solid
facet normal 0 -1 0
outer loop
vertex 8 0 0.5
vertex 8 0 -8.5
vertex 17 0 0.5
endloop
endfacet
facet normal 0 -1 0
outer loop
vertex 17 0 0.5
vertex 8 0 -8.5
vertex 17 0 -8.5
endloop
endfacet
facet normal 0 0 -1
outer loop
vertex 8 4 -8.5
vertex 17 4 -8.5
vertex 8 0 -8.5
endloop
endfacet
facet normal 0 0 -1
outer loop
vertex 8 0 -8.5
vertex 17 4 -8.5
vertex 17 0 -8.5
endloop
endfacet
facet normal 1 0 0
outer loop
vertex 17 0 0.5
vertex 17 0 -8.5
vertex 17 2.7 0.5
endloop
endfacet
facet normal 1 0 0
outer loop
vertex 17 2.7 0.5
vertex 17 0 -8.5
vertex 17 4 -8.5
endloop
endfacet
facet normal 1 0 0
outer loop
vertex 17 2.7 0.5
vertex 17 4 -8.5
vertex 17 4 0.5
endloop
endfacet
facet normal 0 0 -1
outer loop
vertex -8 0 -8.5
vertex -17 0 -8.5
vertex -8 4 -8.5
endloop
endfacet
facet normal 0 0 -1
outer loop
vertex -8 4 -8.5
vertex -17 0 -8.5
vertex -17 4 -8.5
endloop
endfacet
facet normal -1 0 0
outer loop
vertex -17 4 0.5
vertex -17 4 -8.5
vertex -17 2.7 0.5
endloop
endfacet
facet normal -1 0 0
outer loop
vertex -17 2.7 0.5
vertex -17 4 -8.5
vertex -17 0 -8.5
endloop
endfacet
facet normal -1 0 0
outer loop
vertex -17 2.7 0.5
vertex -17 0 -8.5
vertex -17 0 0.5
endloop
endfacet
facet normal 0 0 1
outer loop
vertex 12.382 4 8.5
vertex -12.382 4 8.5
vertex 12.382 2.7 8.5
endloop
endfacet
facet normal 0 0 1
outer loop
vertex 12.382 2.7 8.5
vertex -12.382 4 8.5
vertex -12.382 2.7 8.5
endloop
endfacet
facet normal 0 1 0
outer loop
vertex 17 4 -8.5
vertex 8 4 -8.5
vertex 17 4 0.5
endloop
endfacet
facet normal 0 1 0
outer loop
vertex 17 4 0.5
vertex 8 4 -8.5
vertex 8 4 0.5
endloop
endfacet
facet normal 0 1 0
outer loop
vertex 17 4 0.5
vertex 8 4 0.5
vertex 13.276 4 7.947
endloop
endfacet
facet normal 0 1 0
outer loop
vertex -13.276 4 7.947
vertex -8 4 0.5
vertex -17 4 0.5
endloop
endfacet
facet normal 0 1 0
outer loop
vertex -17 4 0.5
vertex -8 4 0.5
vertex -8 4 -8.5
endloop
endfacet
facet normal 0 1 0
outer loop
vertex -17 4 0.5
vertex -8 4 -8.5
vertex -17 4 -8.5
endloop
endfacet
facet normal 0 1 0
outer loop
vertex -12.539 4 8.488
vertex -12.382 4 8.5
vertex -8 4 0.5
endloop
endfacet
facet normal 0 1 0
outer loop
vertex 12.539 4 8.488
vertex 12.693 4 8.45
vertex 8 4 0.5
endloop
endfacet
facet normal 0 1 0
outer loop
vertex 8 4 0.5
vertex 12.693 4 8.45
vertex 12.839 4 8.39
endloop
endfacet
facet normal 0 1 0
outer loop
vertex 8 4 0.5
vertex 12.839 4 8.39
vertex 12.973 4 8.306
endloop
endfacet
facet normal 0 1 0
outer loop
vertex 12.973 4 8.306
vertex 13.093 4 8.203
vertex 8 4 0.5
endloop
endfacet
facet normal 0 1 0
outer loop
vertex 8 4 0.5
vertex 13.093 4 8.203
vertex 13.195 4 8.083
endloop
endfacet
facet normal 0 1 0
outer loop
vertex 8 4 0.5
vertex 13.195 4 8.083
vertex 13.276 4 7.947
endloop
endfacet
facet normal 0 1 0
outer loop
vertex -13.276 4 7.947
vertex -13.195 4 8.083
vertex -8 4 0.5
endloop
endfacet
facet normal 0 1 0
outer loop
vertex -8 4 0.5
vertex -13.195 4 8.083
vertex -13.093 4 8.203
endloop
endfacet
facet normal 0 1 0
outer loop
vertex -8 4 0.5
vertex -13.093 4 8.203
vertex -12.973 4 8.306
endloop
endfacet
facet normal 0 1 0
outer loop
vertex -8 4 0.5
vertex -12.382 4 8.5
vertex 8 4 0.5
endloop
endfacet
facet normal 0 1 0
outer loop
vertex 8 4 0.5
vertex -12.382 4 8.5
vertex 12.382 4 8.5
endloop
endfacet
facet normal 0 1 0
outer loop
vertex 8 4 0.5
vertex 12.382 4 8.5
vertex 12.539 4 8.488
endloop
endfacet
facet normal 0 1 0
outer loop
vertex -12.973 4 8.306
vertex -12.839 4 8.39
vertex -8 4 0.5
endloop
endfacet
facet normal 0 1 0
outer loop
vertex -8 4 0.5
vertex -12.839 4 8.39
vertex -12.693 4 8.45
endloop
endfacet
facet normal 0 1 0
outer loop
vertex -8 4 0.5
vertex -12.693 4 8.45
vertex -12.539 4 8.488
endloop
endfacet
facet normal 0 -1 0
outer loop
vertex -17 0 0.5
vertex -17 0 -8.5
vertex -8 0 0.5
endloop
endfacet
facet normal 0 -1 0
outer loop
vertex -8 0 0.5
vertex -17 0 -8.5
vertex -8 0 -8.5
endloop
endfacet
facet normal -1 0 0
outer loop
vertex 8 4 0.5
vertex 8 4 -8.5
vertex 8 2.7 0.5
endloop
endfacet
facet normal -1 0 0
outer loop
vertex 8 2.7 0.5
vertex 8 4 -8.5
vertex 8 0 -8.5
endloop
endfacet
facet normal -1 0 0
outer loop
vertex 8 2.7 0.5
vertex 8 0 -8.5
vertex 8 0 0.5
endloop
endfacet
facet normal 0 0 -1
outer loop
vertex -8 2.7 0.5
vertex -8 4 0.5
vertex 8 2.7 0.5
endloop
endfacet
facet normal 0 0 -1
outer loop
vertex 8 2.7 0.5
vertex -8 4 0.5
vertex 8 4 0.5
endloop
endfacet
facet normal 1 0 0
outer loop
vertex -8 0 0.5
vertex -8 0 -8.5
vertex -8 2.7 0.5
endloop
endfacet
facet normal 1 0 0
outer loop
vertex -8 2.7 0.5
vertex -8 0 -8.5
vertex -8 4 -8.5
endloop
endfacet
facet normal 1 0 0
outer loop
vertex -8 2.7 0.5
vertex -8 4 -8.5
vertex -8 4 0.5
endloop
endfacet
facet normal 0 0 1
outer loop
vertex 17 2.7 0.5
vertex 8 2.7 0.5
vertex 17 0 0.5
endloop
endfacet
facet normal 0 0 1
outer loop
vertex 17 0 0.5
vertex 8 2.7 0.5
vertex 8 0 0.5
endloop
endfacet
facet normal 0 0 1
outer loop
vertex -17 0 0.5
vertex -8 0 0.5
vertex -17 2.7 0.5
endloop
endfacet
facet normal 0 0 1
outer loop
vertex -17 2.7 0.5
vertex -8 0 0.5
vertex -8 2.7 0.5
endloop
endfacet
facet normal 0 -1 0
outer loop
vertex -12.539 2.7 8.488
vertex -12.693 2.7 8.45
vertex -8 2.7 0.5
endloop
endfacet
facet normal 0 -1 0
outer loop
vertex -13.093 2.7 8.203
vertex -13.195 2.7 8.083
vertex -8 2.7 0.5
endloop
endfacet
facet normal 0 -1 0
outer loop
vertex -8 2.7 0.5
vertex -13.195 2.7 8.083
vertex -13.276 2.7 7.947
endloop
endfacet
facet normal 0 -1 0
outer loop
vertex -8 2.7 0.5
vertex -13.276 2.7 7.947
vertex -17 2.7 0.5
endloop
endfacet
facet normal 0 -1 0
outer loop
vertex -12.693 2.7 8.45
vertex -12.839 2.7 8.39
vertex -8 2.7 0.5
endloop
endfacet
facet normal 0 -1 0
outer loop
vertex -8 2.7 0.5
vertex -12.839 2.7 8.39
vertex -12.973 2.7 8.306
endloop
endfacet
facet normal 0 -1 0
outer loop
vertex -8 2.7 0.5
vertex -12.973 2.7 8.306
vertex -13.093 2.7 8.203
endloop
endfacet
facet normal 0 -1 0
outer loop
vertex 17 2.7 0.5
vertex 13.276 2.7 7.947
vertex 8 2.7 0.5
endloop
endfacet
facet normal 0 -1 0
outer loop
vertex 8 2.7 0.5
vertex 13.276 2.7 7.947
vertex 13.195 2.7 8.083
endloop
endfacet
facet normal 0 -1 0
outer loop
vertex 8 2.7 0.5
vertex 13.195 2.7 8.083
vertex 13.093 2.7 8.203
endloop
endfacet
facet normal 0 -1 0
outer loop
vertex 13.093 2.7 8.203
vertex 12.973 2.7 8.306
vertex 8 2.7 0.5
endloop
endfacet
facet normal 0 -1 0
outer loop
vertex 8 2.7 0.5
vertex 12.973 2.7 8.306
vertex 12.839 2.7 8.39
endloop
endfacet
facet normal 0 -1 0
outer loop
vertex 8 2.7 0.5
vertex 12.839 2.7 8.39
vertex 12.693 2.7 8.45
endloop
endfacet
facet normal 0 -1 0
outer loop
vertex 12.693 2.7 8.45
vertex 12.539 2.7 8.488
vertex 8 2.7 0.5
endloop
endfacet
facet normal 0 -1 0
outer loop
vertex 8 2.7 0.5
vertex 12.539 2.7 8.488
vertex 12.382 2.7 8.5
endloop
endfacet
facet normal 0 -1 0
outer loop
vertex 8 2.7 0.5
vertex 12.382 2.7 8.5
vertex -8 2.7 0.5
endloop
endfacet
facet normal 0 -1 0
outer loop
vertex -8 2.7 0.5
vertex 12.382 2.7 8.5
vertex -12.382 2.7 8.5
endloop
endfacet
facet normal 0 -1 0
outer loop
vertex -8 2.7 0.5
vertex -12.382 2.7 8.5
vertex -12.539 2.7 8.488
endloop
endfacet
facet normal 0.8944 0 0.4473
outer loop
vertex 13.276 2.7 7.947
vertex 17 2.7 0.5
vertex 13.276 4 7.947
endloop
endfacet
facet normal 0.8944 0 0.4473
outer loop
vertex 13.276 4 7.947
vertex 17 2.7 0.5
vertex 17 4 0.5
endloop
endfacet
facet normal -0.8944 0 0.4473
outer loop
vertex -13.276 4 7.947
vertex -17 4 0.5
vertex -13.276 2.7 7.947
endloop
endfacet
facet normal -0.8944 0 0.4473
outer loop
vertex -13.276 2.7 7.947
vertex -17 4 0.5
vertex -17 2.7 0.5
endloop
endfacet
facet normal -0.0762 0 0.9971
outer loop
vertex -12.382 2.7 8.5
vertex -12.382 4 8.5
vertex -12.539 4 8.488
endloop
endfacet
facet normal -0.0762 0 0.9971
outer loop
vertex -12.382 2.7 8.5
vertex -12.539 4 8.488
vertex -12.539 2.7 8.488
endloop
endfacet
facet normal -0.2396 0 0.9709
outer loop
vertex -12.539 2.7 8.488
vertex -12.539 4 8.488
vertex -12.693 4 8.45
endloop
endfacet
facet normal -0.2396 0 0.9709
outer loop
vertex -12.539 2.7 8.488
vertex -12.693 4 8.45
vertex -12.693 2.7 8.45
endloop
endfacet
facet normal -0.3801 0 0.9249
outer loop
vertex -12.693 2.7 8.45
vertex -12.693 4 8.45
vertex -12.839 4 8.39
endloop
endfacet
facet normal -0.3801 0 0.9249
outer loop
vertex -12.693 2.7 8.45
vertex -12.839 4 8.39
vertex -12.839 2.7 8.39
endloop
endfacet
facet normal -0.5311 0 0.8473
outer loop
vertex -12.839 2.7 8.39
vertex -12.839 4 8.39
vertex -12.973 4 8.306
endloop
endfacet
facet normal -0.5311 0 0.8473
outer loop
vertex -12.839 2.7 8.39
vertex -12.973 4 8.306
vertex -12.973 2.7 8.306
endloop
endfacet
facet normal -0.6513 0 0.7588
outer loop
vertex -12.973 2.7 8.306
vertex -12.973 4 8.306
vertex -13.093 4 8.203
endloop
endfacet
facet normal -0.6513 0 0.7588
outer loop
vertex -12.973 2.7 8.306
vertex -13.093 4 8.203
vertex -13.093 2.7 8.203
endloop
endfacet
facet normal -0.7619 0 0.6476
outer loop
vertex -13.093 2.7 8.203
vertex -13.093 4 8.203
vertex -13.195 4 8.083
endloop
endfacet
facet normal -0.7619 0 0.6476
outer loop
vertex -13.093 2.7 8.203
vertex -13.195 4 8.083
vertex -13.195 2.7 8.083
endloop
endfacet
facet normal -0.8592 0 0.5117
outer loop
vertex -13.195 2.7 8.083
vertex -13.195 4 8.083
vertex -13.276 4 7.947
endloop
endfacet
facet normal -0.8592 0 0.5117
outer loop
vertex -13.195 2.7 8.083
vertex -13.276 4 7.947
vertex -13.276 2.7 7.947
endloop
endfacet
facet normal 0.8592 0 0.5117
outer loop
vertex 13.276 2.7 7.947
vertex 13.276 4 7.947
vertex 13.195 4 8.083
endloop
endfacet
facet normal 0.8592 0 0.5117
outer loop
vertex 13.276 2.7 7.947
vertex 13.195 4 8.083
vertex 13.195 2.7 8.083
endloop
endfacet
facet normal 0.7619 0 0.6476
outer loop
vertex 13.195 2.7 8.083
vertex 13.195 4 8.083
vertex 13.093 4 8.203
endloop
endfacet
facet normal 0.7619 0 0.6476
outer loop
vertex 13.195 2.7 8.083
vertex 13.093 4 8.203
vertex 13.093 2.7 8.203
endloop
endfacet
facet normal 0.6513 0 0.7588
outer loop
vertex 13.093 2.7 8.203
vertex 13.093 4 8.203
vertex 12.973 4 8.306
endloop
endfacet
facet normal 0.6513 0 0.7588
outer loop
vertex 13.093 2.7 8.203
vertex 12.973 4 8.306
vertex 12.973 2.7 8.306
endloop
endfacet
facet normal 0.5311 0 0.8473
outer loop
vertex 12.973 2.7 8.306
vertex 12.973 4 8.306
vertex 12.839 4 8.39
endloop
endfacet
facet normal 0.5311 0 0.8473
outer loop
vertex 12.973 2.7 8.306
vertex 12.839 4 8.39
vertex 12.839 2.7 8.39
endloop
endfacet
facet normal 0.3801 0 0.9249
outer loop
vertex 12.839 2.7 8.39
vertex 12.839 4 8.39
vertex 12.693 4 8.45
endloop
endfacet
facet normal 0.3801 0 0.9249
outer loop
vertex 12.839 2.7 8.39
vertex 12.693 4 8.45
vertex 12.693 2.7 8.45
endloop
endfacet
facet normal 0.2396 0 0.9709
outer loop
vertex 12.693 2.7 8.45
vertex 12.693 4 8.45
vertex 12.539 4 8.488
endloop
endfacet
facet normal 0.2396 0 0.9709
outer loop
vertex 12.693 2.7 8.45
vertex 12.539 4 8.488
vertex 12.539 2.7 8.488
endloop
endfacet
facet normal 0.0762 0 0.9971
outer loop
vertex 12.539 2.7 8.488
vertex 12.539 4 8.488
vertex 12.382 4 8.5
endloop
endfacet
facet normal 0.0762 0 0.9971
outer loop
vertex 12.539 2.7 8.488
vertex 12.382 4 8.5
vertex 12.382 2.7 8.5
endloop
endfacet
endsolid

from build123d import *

# Parameters (mm, degrees)
CROQUIS1_W              = 34
CROQUIS1_H              = 17
SALIENTE_EXTRUIR1_DEPTH = 4
CROQUIS2_W              = 16
CROQUIS2_H              = 9
CORTAR_EXTRUIR1_DEPTH   = 5
CROQUIS3_W              = 34
CROQUIS3_H              = 2.7
CORTAR_EXTRUIR2_DEPTH   = 8
CORTAR_EXTRUIR3_DEPTH   = 3
REDONDEO3_R             = 1
REDONDEO4_R             = 1


with BuildPart() as part:
    # Croquis1 → Saliente-Extruir1 (new body)
    with BuildSketch(Plane(origin=(0, 0, 0), x_dir=(1, 0, 0), z_dir=(0, 1, 0))):
        Rectangle(CROQUIS1_W, CROQUIS1_H)
    extrude(amount=SALIENTE_EXTRUIR1_DEPTH)

    # Croquis2 → Cortar-Extruir1 (cut)
    with BuildSketch(Plane(origin=(0, 4, 0), x_dir=(1, 0, 0), z_dir=(0, 1, 0))):
        with Locations((0, 4)):
            Rectangle(CROQUIS2_W, CROQUIS2_H)
    extrude(amount=-CORTAR_EXTRUIR1_DEPTH, mode=Mode.SUBTRACT)

    # Croquis3 → Cortar-Extruir2 (cut)
    with BuildSketch(Plane.XY.offset(8.5)):
        with Locations((0, 1.35)):
            Rectangle(CROQUIS3_W, CROQUIS3_H)
    extrude(amount=-CORTAR_EXTRUIR2_DEPTH, mode=Mode.SUBTRACT)

    # Croquis4 → Cortar-Extruir3 (cut)
    with BuildSketch(Plane(origin=(0, 4, 0), x_dir=(1, 0, 0), z_dir=(0, 1, 0))):
        Polygon((-17, -0.5), (-13, -8.5), (-17, -8.5), align=None)
        Polygon((13, -8.5), (17, -8.5), (17, -0.5), align=None)
    extrude(amount=-CORTAR_EXTRUIR3_DEPTH, mode=Mode.SUBTRACT)

    # Redondeo3
    redondeo3_edges = [part.edges().sort_by_distance(p)[0] for p in [
        (-13, 3.35, 8.5),
    ]]
    fillet(redondeo3_edges, radius=REDONDEO3_R)

    # Redondeo4
    redondeo4_edges = [part.edges().sort_by_distance(p)[0] for p in [
        (13, 3.35, 8.5),
    ]]
    fillet(redondeo4_edges, radius=REDONDEO4_R)


solid = part.part
